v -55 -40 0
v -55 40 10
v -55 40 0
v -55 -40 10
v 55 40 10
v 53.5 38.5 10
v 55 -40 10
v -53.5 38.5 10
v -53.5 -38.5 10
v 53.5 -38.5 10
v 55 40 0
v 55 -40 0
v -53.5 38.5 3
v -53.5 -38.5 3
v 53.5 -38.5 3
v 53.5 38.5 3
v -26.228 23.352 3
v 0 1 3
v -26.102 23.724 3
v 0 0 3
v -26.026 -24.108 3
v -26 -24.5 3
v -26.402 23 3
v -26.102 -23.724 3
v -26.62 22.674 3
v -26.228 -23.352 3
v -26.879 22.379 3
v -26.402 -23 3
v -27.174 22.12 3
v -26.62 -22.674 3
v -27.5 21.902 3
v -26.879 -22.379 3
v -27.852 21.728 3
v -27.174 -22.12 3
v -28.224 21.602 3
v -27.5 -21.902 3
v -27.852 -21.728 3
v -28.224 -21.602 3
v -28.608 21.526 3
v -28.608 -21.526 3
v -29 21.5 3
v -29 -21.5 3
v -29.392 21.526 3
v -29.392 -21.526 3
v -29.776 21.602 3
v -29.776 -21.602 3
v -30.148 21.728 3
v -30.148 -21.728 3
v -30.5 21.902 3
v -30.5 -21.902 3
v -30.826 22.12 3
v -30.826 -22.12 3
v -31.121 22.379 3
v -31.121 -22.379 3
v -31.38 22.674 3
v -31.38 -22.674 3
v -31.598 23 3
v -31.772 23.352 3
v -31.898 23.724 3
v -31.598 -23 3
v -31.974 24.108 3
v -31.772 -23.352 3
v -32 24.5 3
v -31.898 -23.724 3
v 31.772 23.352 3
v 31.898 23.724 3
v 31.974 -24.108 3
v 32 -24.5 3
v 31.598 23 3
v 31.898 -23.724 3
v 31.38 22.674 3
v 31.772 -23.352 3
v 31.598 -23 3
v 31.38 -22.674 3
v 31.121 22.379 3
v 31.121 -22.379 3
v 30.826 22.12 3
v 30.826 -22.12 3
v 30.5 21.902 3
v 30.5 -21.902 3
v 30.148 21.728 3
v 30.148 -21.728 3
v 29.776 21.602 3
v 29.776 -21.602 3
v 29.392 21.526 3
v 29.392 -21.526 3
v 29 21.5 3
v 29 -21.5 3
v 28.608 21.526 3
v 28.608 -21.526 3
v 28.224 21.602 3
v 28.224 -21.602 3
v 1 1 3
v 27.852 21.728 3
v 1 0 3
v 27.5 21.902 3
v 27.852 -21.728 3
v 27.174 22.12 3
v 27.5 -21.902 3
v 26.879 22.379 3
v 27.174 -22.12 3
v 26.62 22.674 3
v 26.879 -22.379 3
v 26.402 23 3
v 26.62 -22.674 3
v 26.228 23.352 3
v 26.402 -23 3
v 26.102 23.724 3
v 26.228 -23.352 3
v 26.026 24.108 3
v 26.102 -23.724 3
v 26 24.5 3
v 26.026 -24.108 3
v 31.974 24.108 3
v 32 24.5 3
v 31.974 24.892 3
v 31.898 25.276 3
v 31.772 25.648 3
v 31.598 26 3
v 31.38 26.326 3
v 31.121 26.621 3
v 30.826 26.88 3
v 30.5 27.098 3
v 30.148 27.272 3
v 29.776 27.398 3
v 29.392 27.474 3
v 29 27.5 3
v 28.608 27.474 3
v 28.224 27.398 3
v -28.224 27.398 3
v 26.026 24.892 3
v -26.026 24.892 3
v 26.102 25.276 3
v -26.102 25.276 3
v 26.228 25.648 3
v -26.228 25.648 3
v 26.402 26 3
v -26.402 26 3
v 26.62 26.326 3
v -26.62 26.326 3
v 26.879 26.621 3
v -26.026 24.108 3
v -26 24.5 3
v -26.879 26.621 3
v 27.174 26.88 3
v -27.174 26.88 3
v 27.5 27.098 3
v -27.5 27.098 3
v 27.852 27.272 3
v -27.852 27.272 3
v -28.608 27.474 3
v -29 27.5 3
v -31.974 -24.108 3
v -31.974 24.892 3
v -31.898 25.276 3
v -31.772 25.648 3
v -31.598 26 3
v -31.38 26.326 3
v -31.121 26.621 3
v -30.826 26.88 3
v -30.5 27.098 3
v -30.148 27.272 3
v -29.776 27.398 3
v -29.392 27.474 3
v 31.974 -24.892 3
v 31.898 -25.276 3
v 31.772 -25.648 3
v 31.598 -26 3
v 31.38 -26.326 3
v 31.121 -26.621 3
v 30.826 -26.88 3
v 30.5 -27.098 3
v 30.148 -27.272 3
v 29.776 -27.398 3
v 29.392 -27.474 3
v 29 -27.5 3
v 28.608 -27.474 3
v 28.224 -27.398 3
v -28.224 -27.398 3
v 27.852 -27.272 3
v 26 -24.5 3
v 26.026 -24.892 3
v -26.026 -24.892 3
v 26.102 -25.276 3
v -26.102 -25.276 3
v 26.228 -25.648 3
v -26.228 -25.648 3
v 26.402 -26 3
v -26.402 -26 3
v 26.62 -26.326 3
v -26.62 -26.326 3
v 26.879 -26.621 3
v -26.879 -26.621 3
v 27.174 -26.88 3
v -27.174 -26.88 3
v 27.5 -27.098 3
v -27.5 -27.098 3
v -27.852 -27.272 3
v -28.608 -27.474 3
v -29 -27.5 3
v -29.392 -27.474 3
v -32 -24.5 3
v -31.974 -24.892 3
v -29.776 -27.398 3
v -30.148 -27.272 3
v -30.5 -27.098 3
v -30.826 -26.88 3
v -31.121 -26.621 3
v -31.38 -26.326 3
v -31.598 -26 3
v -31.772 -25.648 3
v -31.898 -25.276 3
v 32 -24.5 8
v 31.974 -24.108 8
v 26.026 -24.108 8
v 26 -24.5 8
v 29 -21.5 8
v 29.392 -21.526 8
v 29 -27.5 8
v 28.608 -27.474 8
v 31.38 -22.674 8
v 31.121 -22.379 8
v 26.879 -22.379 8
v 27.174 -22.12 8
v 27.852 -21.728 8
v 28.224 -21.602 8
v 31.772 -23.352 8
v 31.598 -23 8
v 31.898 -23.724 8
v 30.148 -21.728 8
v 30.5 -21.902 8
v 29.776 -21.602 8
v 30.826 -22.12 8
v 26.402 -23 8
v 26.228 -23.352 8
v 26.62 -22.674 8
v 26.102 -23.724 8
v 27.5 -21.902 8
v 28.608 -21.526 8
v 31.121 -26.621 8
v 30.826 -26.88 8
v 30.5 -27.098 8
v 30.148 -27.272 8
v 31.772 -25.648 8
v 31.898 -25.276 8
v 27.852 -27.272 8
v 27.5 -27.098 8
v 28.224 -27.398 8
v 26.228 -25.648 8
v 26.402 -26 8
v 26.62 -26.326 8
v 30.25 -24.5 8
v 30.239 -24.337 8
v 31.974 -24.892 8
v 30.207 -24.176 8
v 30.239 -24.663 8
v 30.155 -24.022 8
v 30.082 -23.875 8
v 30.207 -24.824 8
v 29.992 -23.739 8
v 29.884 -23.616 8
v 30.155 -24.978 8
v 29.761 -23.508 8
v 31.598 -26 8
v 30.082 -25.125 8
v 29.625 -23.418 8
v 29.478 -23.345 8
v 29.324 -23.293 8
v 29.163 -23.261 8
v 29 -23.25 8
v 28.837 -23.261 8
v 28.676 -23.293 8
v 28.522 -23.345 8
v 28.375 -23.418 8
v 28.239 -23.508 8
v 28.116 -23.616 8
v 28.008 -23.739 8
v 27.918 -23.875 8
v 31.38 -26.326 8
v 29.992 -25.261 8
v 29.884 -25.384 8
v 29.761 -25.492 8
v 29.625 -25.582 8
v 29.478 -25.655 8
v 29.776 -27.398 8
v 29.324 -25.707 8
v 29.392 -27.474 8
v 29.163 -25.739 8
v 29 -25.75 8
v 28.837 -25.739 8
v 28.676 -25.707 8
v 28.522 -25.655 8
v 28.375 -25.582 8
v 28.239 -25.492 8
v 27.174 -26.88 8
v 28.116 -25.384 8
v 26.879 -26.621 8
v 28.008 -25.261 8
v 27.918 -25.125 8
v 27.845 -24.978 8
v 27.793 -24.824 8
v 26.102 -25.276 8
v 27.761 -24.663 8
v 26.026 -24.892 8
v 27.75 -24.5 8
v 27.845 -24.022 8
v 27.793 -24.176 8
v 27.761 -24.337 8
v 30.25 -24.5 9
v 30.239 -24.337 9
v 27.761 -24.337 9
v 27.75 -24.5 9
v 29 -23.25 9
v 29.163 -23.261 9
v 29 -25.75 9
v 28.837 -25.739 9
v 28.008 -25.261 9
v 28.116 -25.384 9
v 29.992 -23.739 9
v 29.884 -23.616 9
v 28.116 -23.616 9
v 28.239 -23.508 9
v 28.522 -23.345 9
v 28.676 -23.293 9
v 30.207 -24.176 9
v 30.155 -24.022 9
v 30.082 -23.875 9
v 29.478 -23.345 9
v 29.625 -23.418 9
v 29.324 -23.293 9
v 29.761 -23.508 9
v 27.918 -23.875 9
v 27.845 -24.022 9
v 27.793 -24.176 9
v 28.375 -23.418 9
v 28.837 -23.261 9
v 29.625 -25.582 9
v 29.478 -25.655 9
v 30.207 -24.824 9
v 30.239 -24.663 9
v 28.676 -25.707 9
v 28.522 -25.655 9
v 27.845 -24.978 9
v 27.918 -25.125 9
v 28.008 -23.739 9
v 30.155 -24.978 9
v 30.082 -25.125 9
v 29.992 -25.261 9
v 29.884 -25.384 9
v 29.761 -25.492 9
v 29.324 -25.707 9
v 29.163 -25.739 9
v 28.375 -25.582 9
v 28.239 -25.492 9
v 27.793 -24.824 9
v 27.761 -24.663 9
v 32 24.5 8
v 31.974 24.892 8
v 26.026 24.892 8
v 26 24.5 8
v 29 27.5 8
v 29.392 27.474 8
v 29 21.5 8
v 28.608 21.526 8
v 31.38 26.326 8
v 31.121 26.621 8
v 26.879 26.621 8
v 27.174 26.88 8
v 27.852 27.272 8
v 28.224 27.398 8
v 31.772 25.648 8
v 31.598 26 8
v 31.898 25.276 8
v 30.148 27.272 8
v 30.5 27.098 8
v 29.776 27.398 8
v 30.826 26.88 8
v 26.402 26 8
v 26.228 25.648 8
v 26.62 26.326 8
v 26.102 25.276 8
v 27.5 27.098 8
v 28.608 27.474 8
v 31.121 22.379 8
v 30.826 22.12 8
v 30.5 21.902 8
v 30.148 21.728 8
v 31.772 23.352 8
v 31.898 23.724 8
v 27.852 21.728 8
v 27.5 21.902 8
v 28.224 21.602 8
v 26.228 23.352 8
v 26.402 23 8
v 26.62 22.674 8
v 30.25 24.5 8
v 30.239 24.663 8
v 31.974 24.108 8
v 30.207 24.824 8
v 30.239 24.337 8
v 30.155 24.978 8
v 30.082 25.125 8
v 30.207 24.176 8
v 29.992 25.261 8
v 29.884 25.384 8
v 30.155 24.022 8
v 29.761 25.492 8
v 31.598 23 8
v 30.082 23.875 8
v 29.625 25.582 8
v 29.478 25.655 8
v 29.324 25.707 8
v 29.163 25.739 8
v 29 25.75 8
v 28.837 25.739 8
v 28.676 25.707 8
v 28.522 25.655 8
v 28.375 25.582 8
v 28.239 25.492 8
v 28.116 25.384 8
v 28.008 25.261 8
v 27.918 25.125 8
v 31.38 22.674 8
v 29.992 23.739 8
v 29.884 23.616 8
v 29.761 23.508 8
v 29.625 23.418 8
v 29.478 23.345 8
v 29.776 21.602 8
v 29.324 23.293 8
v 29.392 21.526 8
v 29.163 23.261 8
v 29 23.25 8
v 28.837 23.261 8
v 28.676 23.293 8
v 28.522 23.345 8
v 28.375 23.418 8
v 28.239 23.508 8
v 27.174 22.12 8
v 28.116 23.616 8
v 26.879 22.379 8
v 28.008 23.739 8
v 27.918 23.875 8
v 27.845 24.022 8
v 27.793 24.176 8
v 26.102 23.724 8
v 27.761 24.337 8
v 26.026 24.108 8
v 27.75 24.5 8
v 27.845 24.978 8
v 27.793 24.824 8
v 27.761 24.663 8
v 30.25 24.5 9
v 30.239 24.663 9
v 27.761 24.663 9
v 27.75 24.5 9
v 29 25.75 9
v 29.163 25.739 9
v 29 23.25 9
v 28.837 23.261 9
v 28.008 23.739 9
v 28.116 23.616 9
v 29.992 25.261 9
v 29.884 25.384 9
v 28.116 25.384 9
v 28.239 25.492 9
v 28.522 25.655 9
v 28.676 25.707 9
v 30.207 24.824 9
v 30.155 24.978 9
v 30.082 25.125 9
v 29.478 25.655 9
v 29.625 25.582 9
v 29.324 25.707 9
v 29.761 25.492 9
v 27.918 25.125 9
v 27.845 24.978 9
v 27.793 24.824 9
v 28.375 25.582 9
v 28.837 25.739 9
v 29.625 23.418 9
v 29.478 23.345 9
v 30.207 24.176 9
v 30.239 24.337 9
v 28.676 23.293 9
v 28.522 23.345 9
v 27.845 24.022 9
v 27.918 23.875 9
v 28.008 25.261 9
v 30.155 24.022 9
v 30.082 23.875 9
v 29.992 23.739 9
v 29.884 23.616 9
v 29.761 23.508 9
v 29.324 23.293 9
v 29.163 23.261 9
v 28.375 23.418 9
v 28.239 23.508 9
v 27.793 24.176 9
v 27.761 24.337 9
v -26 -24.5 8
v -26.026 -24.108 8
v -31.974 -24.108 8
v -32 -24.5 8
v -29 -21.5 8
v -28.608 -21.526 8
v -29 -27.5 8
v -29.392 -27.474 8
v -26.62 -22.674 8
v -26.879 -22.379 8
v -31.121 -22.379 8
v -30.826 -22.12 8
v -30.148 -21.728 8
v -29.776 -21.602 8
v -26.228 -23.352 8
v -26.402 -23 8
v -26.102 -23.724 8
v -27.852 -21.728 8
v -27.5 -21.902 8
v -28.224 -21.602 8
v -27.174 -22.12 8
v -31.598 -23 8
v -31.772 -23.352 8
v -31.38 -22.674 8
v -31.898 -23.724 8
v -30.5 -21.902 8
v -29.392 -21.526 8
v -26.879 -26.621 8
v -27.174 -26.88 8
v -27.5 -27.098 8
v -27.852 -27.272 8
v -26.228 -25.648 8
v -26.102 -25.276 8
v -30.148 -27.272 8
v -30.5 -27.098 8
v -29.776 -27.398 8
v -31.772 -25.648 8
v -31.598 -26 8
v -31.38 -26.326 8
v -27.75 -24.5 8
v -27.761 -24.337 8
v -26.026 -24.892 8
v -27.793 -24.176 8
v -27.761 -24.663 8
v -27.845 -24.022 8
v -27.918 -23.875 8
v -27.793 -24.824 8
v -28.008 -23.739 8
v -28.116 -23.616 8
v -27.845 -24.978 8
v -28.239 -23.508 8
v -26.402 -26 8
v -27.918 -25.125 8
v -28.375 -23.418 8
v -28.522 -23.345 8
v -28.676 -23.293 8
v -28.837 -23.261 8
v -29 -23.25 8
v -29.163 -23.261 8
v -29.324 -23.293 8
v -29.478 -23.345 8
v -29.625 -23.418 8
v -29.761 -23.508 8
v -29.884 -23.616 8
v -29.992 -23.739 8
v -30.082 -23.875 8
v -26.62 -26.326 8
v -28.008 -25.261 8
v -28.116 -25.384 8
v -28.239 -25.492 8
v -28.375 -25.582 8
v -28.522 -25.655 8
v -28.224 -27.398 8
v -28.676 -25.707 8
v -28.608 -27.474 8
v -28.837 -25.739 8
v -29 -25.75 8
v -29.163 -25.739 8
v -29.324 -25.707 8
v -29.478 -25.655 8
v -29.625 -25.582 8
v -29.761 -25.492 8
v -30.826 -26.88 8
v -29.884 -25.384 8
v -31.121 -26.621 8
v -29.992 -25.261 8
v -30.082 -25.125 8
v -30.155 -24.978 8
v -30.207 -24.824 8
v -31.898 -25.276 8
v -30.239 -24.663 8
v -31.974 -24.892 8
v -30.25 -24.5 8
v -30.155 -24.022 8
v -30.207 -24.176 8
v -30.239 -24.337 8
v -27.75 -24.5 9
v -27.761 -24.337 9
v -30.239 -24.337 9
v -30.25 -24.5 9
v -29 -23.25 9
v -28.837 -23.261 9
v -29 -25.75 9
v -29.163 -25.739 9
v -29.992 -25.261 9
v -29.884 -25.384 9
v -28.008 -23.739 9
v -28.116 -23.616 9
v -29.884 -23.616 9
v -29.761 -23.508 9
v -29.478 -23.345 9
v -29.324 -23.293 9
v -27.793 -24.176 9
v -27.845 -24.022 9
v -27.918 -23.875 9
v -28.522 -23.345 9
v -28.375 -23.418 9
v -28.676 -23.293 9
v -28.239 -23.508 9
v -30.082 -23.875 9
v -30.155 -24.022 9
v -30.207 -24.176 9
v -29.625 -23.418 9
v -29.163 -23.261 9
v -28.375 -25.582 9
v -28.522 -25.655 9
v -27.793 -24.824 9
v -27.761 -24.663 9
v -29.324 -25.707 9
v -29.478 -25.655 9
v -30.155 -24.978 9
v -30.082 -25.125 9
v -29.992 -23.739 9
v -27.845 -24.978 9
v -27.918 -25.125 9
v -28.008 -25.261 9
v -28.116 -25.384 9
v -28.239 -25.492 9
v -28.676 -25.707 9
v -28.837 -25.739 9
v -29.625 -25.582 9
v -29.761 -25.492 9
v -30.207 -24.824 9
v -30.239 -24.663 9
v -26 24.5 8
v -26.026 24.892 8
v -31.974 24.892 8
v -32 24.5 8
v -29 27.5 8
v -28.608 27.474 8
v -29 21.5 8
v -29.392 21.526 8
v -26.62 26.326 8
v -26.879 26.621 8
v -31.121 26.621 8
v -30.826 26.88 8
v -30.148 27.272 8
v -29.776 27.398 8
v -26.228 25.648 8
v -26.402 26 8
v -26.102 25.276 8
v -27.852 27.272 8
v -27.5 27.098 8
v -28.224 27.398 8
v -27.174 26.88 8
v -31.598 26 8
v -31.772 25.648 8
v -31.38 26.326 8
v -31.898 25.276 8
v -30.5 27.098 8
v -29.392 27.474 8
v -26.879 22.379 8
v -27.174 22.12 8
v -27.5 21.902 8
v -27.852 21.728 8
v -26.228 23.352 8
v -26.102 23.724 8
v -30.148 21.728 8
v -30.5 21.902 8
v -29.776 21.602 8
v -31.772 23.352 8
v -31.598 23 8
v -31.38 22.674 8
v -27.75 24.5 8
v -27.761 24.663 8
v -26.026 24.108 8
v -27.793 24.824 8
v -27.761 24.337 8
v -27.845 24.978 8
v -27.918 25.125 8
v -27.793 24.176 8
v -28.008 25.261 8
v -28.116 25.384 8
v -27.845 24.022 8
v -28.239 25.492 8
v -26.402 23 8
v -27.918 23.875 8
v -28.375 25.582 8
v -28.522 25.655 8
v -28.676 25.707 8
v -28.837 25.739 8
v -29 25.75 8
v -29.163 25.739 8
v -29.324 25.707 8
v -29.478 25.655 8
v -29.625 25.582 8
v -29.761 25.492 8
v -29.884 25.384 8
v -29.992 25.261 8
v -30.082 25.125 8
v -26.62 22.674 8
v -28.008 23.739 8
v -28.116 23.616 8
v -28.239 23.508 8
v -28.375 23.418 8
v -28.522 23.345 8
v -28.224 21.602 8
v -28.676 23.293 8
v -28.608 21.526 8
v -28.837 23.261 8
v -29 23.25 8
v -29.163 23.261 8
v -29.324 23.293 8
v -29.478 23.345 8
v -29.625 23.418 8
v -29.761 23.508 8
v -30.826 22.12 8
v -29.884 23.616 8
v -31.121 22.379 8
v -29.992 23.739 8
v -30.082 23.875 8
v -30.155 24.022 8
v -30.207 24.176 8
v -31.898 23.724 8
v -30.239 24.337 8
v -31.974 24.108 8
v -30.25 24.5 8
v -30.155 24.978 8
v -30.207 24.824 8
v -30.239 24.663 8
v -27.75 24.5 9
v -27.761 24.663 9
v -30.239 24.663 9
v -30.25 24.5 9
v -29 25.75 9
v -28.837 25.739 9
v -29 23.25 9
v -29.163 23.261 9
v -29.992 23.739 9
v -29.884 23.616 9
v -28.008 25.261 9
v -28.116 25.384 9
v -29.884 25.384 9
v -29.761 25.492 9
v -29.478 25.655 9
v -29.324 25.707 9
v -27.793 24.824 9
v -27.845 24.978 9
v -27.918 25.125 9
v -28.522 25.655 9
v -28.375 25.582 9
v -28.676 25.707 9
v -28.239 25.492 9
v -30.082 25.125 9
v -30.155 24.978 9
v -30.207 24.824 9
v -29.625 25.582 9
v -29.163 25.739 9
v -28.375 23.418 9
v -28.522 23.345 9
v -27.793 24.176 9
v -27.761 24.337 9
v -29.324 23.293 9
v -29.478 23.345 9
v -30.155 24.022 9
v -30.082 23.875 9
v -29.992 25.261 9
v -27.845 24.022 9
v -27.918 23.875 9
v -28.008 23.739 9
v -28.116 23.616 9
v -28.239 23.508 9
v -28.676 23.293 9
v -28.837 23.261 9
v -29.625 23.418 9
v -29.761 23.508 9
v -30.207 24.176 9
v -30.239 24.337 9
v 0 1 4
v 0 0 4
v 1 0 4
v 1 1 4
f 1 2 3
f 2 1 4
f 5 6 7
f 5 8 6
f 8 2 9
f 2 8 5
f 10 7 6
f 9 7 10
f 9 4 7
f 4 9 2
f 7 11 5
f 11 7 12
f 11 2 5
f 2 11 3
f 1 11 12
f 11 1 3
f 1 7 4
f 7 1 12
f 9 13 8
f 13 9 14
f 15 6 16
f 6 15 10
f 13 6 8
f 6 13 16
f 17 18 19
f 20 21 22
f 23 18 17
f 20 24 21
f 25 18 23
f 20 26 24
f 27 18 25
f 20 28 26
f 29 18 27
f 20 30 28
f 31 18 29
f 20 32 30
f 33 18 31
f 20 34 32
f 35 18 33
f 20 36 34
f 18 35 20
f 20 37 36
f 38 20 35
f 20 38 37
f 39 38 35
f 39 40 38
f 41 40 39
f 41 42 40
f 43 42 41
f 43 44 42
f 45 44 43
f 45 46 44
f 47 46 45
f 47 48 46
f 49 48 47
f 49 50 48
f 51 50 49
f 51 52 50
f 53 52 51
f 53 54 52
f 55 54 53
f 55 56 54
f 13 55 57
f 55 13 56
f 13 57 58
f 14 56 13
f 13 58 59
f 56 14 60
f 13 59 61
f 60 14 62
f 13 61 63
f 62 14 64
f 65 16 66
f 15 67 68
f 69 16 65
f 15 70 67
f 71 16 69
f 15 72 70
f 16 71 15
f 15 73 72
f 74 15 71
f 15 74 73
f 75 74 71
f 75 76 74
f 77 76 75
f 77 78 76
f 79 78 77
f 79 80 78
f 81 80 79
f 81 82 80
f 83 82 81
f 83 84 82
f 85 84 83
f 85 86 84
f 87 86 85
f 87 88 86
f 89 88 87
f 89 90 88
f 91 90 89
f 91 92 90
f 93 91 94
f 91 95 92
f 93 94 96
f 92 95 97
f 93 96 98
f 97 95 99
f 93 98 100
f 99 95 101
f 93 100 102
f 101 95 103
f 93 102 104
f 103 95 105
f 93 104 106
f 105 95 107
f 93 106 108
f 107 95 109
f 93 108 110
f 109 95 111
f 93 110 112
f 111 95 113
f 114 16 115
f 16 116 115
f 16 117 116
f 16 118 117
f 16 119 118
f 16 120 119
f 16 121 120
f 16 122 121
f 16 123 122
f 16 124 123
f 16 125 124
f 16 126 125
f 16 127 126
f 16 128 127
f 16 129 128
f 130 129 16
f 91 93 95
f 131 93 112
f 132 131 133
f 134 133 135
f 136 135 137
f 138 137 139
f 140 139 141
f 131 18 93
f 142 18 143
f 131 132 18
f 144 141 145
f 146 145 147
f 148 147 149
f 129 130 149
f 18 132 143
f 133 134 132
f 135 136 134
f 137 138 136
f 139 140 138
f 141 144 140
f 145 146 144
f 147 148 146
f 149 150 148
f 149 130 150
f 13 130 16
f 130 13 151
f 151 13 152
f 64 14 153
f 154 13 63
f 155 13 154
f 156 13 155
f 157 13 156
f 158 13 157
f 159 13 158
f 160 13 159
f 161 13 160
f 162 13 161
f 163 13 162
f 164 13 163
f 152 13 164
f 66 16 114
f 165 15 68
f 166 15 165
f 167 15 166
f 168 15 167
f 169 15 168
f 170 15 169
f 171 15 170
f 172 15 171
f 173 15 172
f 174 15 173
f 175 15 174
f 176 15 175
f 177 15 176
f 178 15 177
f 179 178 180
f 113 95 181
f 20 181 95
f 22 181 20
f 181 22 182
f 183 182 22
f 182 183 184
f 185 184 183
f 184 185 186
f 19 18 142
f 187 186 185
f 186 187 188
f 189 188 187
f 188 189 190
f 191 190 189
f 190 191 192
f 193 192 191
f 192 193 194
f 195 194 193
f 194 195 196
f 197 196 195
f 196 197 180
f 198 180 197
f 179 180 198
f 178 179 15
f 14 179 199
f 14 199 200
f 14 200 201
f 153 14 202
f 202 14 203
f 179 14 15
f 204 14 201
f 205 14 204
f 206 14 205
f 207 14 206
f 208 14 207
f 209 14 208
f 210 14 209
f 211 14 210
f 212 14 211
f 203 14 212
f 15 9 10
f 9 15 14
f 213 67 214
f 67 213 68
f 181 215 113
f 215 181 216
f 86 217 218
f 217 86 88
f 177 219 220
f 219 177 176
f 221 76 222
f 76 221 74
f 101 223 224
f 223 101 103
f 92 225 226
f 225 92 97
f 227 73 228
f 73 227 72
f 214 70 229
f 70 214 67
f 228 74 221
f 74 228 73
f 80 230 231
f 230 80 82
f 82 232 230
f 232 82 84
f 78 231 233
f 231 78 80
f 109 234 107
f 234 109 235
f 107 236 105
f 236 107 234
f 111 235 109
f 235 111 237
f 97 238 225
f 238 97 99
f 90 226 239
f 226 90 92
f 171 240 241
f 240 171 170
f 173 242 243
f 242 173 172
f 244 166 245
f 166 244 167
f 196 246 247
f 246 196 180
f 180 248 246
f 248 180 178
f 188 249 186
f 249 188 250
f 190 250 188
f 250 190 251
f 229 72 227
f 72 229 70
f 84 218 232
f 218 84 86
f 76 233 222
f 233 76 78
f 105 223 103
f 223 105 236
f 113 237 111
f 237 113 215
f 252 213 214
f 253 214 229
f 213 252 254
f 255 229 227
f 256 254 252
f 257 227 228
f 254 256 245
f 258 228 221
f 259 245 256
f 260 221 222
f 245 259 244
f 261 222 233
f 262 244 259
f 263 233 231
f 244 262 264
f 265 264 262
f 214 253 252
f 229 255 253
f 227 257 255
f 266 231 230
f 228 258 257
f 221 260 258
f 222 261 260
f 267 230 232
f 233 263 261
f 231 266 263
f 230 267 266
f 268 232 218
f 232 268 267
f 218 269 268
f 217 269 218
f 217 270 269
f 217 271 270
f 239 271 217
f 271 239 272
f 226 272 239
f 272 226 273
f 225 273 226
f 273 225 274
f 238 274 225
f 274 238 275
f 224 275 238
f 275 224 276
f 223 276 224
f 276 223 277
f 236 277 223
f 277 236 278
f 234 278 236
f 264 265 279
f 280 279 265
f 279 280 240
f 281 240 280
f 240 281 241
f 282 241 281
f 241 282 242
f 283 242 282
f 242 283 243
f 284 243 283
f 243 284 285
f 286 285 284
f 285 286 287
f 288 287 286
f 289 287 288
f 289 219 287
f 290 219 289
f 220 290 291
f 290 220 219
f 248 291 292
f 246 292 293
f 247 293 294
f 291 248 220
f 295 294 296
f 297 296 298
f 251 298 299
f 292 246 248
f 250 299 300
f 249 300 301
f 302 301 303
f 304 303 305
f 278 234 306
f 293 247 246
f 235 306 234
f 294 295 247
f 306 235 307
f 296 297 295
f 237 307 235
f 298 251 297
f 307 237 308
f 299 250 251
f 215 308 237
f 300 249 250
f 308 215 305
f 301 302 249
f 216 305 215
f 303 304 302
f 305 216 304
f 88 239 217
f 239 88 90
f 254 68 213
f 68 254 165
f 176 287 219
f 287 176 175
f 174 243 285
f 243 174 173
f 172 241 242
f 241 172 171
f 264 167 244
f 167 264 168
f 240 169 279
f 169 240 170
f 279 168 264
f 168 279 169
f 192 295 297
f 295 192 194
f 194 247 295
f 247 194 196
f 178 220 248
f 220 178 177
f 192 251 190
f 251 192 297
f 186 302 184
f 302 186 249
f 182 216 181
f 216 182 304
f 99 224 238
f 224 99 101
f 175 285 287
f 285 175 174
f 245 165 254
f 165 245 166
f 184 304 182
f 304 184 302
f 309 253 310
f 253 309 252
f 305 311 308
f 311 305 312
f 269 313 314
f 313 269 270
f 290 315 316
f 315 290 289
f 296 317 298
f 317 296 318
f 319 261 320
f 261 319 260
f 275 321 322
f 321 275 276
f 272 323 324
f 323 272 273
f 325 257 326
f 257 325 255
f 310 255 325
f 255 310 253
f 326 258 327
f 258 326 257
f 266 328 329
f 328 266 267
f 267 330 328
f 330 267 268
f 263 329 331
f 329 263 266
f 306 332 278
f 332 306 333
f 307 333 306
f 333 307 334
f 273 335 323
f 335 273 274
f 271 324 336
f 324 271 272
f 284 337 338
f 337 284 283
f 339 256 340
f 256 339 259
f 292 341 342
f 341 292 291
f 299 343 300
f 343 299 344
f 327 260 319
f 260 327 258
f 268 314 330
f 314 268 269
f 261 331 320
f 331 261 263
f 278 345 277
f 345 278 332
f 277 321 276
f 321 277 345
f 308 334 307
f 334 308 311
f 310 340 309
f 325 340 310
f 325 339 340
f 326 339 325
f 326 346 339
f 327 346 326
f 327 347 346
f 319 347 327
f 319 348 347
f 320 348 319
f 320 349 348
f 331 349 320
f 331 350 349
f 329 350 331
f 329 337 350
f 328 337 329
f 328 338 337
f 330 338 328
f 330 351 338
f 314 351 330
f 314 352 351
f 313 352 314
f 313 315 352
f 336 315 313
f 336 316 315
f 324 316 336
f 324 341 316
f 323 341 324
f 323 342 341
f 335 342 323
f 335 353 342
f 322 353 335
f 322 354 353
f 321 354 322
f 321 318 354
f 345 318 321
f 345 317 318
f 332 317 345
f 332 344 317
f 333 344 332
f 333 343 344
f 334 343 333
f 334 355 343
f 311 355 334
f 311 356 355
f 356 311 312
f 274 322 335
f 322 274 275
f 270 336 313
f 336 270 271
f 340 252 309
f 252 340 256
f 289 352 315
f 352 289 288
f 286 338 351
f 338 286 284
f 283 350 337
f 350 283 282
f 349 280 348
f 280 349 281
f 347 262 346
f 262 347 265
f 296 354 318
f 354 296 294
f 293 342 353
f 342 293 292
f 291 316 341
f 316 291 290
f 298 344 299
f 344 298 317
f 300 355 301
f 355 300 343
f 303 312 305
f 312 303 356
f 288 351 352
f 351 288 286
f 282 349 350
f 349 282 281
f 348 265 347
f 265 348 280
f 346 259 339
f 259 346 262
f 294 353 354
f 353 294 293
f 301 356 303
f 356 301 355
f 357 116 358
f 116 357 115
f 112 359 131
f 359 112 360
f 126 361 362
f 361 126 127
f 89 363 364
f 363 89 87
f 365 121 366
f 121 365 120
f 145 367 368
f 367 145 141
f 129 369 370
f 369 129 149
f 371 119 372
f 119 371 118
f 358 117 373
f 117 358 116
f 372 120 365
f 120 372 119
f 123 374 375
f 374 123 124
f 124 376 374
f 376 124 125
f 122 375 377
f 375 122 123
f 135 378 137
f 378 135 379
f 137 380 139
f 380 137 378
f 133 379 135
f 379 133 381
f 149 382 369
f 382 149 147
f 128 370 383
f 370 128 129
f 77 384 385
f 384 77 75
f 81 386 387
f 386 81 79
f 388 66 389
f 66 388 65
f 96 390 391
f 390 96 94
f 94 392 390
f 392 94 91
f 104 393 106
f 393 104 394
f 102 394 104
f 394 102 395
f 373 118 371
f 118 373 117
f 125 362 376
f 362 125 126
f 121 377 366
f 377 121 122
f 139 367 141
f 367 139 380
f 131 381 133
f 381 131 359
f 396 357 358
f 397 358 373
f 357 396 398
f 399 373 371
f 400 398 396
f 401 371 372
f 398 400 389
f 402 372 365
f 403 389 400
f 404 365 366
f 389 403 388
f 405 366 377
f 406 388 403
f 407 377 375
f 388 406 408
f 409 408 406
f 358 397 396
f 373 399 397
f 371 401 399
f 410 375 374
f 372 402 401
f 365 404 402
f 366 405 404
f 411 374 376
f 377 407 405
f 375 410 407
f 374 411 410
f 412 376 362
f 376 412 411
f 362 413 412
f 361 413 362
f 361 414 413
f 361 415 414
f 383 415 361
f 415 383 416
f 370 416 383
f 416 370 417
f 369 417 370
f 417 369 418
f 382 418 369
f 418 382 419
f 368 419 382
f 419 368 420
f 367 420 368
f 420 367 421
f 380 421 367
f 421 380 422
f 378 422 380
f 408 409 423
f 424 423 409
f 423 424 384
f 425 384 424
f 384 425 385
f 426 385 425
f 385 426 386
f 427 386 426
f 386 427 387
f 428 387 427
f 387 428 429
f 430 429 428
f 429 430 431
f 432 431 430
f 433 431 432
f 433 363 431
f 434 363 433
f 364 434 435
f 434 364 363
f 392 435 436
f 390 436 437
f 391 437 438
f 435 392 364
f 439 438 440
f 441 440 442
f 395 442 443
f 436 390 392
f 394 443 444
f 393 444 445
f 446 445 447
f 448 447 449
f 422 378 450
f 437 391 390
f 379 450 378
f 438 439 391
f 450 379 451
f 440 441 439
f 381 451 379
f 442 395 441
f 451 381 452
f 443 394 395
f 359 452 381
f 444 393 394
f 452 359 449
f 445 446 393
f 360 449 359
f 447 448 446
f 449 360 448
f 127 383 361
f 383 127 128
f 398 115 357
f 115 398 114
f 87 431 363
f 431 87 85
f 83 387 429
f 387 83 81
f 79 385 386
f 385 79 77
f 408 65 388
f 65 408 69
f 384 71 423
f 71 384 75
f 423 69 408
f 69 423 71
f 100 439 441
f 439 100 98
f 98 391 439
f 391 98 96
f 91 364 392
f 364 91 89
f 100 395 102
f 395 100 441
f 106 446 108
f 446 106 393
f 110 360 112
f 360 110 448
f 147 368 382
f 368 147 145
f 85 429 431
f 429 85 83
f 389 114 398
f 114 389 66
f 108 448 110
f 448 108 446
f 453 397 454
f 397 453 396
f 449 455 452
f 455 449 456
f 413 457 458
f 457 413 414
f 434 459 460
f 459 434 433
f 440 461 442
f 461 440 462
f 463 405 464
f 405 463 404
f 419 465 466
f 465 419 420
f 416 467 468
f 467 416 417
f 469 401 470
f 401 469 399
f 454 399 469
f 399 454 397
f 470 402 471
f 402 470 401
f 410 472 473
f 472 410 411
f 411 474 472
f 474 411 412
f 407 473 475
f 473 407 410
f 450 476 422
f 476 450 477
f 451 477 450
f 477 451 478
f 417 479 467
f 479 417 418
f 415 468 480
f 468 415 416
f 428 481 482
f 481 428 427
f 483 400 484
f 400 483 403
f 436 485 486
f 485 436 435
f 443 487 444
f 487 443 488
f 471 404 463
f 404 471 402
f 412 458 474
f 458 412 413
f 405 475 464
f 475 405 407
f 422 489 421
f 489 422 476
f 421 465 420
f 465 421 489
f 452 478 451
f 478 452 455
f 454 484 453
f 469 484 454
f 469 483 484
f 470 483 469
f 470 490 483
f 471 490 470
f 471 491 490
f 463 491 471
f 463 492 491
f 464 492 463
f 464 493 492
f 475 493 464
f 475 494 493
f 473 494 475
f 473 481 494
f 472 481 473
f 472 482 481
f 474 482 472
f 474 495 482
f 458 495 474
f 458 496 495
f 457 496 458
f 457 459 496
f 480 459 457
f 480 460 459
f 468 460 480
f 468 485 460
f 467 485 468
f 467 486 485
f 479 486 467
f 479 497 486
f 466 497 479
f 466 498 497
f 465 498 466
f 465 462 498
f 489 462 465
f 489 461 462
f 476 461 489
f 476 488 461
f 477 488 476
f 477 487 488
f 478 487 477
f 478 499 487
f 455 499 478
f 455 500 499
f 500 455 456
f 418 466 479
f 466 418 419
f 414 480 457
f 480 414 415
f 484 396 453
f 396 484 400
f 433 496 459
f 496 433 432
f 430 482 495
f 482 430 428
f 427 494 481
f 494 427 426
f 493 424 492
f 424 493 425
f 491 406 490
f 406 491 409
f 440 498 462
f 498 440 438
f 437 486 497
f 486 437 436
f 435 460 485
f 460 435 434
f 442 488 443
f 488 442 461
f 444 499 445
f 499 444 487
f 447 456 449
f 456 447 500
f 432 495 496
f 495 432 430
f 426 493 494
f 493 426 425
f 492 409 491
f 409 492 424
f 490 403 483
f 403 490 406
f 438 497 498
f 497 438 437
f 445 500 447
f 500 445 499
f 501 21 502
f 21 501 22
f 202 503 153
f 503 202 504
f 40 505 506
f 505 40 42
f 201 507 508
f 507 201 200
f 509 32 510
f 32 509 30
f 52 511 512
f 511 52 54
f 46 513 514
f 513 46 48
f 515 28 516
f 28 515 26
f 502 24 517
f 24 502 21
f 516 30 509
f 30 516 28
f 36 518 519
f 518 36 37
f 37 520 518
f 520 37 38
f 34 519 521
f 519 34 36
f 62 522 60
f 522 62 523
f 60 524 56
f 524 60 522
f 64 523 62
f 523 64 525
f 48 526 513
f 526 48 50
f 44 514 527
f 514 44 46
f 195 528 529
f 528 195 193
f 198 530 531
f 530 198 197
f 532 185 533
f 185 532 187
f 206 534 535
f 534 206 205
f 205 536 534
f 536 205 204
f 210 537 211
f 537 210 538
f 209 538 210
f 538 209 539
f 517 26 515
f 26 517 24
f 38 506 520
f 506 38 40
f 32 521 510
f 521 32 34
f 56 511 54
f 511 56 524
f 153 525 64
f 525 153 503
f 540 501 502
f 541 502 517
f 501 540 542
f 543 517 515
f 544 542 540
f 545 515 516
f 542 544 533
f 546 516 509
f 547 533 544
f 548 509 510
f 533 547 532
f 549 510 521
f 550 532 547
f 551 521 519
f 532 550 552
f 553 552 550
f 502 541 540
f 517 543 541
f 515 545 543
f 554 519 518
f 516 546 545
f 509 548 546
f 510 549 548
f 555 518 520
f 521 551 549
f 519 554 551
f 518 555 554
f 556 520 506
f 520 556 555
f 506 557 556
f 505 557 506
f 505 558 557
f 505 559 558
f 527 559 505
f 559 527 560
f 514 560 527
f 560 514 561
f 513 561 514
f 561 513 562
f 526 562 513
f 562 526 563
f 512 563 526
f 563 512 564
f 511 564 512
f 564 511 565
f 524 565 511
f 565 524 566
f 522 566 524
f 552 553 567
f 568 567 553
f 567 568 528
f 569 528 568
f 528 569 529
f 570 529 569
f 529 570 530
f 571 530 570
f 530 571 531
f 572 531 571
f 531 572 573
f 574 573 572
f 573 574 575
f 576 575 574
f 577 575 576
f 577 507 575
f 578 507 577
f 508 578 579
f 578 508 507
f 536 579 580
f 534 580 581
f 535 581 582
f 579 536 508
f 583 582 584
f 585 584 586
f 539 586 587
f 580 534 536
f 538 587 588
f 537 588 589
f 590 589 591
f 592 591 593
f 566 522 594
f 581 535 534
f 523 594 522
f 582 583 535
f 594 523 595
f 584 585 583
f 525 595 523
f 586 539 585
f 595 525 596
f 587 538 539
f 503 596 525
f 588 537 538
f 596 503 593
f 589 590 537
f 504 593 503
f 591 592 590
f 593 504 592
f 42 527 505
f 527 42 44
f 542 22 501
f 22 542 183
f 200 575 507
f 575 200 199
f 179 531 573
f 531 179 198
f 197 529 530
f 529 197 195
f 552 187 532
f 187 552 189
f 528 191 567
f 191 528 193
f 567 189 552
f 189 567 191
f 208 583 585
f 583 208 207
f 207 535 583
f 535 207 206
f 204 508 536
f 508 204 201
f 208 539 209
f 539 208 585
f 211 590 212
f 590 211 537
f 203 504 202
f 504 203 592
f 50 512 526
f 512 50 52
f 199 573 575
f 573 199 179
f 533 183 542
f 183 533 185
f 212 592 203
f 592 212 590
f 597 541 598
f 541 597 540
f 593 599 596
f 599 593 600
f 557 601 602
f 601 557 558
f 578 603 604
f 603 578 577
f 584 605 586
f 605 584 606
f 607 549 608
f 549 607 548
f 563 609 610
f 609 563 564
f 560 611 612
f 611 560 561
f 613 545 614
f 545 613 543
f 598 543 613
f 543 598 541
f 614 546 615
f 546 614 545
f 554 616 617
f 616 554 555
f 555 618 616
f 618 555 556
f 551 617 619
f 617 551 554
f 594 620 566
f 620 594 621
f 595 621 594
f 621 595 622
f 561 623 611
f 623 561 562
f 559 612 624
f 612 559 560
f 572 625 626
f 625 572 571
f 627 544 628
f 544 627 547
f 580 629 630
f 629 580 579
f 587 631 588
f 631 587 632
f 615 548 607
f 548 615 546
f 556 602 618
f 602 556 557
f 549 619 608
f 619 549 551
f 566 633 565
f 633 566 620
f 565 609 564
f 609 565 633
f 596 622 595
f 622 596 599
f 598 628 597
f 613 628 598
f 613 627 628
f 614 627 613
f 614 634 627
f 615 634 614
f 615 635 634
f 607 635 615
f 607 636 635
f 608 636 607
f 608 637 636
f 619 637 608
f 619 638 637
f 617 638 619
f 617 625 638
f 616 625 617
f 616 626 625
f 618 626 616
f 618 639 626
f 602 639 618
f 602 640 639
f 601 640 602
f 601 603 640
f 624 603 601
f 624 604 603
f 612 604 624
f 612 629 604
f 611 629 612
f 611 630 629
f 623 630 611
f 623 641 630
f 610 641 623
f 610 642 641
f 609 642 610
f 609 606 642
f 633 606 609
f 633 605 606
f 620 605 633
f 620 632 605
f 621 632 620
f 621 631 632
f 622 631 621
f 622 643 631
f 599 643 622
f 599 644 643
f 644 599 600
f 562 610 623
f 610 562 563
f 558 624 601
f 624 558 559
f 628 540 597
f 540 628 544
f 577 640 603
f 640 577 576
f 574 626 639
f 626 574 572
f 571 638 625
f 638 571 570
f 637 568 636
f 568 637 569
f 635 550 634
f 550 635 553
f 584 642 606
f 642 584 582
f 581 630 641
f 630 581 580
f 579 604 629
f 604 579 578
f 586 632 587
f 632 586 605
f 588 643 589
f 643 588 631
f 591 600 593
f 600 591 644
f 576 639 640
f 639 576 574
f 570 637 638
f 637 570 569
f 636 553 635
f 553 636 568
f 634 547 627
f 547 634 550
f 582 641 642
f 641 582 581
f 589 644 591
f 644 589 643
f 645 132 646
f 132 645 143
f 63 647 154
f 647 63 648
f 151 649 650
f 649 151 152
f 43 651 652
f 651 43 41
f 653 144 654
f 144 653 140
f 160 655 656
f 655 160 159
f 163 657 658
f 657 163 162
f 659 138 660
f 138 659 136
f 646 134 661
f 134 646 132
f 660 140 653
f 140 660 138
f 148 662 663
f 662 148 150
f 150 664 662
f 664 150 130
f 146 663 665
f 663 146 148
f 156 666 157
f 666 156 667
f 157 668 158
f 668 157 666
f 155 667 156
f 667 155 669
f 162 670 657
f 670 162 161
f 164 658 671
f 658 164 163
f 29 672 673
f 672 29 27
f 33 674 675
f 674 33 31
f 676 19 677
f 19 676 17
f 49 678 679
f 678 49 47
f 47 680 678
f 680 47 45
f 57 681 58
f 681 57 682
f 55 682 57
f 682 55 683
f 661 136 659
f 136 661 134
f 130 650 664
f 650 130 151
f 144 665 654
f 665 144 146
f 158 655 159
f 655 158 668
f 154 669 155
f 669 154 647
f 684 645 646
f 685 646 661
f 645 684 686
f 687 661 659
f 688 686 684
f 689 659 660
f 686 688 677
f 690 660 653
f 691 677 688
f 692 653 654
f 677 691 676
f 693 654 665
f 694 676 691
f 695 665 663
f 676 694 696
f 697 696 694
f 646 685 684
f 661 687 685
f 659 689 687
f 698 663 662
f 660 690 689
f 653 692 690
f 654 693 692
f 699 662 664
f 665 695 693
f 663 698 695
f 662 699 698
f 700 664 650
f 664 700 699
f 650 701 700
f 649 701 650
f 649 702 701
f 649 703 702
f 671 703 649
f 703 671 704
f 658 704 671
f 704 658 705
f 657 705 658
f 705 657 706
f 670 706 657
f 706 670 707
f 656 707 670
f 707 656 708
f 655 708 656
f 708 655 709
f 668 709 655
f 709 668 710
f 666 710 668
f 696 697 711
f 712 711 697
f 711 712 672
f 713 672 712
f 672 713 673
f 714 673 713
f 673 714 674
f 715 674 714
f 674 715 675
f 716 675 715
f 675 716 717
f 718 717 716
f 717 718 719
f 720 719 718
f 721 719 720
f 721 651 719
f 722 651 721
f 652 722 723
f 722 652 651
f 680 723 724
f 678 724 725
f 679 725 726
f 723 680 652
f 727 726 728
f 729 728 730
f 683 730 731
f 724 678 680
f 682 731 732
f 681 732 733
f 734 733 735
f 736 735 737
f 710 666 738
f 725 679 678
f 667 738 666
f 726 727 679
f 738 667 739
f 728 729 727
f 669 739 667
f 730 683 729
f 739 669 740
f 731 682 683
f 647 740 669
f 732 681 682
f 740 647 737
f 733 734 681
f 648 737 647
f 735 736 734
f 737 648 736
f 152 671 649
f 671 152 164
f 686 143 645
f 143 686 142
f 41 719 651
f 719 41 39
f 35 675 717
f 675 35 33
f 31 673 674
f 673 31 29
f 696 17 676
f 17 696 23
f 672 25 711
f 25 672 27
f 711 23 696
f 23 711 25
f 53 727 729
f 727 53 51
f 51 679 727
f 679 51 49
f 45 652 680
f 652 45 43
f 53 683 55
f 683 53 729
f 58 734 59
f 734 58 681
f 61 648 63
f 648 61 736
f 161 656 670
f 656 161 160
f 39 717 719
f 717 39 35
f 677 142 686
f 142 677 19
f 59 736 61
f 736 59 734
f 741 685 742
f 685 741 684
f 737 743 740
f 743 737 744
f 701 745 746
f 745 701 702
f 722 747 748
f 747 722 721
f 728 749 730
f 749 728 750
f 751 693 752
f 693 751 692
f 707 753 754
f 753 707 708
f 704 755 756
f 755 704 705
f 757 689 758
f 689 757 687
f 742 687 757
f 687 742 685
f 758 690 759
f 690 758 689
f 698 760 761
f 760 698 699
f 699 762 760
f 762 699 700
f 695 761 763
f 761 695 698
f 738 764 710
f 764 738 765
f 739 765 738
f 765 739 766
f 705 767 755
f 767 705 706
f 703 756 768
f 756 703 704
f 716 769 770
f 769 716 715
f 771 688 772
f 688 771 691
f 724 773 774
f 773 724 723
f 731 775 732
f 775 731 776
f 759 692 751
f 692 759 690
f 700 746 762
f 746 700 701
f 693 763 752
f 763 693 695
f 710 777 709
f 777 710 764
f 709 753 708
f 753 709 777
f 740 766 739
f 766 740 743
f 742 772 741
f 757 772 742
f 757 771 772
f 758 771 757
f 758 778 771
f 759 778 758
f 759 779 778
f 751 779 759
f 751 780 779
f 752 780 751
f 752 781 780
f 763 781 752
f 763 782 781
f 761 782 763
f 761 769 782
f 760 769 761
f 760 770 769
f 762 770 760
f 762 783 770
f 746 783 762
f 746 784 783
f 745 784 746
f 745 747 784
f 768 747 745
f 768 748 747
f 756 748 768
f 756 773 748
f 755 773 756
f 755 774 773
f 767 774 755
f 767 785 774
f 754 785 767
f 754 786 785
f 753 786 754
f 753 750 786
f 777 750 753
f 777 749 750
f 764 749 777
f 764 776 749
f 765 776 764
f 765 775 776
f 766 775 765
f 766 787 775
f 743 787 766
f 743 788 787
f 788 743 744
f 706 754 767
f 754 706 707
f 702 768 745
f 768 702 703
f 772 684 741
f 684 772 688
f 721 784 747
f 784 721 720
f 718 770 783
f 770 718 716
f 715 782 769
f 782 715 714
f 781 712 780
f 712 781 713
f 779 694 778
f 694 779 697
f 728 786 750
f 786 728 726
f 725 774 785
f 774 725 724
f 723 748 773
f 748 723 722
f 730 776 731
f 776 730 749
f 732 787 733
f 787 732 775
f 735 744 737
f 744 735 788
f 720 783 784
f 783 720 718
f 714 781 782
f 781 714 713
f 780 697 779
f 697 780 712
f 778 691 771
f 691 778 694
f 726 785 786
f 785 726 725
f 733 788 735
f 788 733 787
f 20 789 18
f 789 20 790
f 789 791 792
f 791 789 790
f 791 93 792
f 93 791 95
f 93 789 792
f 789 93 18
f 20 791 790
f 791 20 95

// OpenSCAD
// Generated by SolidPython 0.4.2 on 2019-11-16 17:13:29
$fn = 48;

union() {
	translate(v = [0, 0, 5.0000000000]) {
		difference(){
			union() {
				cube(center = true, size = [110.0000000000, 80.0000000000, 10.0000000000]);
			}
			/* Holes Below*/
			union(){
				translate(v = [0, 0, 3.0000000000]) {
					cube(center = true, size = [107.0000000000, 77.0000000000, 10.0000000000]);
				}
			} /* End Holes */ 
		}
	}
	translate(v = [0, 0, 3.0000000000]) {
		union() {
			cube();
			translate(v = [0, -24.5000000000, 0]) {
				translate(v = [29.0000000000, 0, 0]) {
					union() {
						cylinder(h = 5, r = 3.0000000000);
						translate(v = [0, 0, 3.0000000000]) {
							cylinder(h = 3.0000000000, r = 1.2500000000);
						}
					}
				}
			}
			translate(v = [0, 24.5000000000, 0]) {
				translate(v = [29.0000000000, 0, 0]) {
					union() {
						cylinder(h = 5, r = 3.0000000000);
						translate(v = [0, 0, 3.0000000000]) {
							cylinder(h = 3.0000000000, r = 1.2500000000);
						}
					}
				}
			}
			translate(v = [0, -24.5000000000, 0]) {
				translate(v = [-29.0000000000, 0, 0]) {
					union() {
						cylinder(h = 5, r = 3.0000000000);
						translate(v = [0, 0, 3.0000000000]) {
							cylinder(h = 3.0000000000, r = 1.2500000000);
						}
					}
				}
			}
			translate(v = [0, 24.5000000000, 0]) {
				translate(v = [-29.0000000000, 0, 0]) {
					union() {
						cylinder(h = 5, r = 3.0000000000);
						translate(v = [0, 0, 3.0000000000]) {
							cylinder(h = 3.0000000000, r = 1.2500000000);
						}
					}
				}
			}
		}
	}
}
/***********************************************
*********      SolidPython code:      **********
************************************************
 
# from solid.objects import circle, cube, cylinder, difference, polygon, translate, union
# from solid.utils import bearing, nut, right, screw_dimensions
from solid import OpenSCADObject, scad_render_to_file
from solid.objects import circle, cube, cylinder, linear_extrude, part
from solid.utils import fillet_2d, forward, hole, left, screw_dimensions, up

SEGMENTS = 48


class Measurements:
    wall_thickness = 3.0
    # note: rpi 4
    rpi_board_width = 85.0
    rpi_board_depth = 65.0
    rpi_board_height = 3.0  # not really
    rpi_cylinder = 6.0
    rpi_hole = 2.7
    rpi_hole_x_dist = 58.0
    rpi_hole_y_dist = 49.0
    enclosure_height = 10.0
    margin = 10.0
    enclosure_width = 110.0  # rpi_board_width + margin
    enclosure_depth = 80.0  # rpi_board_depth + margin

    diameter_margin = 0.1


m = Measurements()


def board_cylinder():
    group = cube()  # FIXME: look into empties/children
    for x in [-m.rpi_hole_x_dist / 2, m.rpi_hole_x_dist / 2]:
        for y in [-m.rpi_hole_y_dist / 2, m.rpi_hole_y_dist / 2]:
            c = cylinder(r=m.rpi_cylinder / 2, h=5)

            c2 = up(m.rpi_board_height)(
                cylinder(r=m.rpi_hole / 2 - m.diameter_margin, h=m.rpi_board_height)
            )
            c = c + c2

            group += forward(y)(left(x)(c))

    return group


def solid_nut(screw_type="m3"):
    dims = screw_dimensions[screw_type.lower()]
    outer_rad = dims["nut_outer_diam"]
    ret = linear_extrude(height=dims["nut_thickness"])(circle(outer_rad, segments=6))
    return ret


def enclosure():
    enc_outer = cube(
        size=[m.enclosure_width, m.enclosure_depth, m.enclosure_height], center=True
    )

    enc_hole = up(m.wall_thickness)(
        cube(
            size=[
                m.enclosure_width - m.wall_thickness,
                m.enclosure_depth - m.wall_thickness,
                m.enclosure_height,
            ],
            center=True,
        )
    )

    enclosure = enc_outer + hole()(enc_hole)
    enclosure = part()(enclosure)
    enclosure = up(m.enclosure_height / 2)(enclosure)

    return enclosure


if __name__ == "__main__":
    item = enclosure() + up(m.wall_thickness)(board_cylinder())
    # item = enclosure()
    file_out = scad_render_to_file(
        item, filepath="output/whitebox.scad", file_header=f"$fn = {SEGMENTS};",
    )
    print(f"{__file__}: SCAD file written to: \n{file_out}")
 
 
************************************************/
